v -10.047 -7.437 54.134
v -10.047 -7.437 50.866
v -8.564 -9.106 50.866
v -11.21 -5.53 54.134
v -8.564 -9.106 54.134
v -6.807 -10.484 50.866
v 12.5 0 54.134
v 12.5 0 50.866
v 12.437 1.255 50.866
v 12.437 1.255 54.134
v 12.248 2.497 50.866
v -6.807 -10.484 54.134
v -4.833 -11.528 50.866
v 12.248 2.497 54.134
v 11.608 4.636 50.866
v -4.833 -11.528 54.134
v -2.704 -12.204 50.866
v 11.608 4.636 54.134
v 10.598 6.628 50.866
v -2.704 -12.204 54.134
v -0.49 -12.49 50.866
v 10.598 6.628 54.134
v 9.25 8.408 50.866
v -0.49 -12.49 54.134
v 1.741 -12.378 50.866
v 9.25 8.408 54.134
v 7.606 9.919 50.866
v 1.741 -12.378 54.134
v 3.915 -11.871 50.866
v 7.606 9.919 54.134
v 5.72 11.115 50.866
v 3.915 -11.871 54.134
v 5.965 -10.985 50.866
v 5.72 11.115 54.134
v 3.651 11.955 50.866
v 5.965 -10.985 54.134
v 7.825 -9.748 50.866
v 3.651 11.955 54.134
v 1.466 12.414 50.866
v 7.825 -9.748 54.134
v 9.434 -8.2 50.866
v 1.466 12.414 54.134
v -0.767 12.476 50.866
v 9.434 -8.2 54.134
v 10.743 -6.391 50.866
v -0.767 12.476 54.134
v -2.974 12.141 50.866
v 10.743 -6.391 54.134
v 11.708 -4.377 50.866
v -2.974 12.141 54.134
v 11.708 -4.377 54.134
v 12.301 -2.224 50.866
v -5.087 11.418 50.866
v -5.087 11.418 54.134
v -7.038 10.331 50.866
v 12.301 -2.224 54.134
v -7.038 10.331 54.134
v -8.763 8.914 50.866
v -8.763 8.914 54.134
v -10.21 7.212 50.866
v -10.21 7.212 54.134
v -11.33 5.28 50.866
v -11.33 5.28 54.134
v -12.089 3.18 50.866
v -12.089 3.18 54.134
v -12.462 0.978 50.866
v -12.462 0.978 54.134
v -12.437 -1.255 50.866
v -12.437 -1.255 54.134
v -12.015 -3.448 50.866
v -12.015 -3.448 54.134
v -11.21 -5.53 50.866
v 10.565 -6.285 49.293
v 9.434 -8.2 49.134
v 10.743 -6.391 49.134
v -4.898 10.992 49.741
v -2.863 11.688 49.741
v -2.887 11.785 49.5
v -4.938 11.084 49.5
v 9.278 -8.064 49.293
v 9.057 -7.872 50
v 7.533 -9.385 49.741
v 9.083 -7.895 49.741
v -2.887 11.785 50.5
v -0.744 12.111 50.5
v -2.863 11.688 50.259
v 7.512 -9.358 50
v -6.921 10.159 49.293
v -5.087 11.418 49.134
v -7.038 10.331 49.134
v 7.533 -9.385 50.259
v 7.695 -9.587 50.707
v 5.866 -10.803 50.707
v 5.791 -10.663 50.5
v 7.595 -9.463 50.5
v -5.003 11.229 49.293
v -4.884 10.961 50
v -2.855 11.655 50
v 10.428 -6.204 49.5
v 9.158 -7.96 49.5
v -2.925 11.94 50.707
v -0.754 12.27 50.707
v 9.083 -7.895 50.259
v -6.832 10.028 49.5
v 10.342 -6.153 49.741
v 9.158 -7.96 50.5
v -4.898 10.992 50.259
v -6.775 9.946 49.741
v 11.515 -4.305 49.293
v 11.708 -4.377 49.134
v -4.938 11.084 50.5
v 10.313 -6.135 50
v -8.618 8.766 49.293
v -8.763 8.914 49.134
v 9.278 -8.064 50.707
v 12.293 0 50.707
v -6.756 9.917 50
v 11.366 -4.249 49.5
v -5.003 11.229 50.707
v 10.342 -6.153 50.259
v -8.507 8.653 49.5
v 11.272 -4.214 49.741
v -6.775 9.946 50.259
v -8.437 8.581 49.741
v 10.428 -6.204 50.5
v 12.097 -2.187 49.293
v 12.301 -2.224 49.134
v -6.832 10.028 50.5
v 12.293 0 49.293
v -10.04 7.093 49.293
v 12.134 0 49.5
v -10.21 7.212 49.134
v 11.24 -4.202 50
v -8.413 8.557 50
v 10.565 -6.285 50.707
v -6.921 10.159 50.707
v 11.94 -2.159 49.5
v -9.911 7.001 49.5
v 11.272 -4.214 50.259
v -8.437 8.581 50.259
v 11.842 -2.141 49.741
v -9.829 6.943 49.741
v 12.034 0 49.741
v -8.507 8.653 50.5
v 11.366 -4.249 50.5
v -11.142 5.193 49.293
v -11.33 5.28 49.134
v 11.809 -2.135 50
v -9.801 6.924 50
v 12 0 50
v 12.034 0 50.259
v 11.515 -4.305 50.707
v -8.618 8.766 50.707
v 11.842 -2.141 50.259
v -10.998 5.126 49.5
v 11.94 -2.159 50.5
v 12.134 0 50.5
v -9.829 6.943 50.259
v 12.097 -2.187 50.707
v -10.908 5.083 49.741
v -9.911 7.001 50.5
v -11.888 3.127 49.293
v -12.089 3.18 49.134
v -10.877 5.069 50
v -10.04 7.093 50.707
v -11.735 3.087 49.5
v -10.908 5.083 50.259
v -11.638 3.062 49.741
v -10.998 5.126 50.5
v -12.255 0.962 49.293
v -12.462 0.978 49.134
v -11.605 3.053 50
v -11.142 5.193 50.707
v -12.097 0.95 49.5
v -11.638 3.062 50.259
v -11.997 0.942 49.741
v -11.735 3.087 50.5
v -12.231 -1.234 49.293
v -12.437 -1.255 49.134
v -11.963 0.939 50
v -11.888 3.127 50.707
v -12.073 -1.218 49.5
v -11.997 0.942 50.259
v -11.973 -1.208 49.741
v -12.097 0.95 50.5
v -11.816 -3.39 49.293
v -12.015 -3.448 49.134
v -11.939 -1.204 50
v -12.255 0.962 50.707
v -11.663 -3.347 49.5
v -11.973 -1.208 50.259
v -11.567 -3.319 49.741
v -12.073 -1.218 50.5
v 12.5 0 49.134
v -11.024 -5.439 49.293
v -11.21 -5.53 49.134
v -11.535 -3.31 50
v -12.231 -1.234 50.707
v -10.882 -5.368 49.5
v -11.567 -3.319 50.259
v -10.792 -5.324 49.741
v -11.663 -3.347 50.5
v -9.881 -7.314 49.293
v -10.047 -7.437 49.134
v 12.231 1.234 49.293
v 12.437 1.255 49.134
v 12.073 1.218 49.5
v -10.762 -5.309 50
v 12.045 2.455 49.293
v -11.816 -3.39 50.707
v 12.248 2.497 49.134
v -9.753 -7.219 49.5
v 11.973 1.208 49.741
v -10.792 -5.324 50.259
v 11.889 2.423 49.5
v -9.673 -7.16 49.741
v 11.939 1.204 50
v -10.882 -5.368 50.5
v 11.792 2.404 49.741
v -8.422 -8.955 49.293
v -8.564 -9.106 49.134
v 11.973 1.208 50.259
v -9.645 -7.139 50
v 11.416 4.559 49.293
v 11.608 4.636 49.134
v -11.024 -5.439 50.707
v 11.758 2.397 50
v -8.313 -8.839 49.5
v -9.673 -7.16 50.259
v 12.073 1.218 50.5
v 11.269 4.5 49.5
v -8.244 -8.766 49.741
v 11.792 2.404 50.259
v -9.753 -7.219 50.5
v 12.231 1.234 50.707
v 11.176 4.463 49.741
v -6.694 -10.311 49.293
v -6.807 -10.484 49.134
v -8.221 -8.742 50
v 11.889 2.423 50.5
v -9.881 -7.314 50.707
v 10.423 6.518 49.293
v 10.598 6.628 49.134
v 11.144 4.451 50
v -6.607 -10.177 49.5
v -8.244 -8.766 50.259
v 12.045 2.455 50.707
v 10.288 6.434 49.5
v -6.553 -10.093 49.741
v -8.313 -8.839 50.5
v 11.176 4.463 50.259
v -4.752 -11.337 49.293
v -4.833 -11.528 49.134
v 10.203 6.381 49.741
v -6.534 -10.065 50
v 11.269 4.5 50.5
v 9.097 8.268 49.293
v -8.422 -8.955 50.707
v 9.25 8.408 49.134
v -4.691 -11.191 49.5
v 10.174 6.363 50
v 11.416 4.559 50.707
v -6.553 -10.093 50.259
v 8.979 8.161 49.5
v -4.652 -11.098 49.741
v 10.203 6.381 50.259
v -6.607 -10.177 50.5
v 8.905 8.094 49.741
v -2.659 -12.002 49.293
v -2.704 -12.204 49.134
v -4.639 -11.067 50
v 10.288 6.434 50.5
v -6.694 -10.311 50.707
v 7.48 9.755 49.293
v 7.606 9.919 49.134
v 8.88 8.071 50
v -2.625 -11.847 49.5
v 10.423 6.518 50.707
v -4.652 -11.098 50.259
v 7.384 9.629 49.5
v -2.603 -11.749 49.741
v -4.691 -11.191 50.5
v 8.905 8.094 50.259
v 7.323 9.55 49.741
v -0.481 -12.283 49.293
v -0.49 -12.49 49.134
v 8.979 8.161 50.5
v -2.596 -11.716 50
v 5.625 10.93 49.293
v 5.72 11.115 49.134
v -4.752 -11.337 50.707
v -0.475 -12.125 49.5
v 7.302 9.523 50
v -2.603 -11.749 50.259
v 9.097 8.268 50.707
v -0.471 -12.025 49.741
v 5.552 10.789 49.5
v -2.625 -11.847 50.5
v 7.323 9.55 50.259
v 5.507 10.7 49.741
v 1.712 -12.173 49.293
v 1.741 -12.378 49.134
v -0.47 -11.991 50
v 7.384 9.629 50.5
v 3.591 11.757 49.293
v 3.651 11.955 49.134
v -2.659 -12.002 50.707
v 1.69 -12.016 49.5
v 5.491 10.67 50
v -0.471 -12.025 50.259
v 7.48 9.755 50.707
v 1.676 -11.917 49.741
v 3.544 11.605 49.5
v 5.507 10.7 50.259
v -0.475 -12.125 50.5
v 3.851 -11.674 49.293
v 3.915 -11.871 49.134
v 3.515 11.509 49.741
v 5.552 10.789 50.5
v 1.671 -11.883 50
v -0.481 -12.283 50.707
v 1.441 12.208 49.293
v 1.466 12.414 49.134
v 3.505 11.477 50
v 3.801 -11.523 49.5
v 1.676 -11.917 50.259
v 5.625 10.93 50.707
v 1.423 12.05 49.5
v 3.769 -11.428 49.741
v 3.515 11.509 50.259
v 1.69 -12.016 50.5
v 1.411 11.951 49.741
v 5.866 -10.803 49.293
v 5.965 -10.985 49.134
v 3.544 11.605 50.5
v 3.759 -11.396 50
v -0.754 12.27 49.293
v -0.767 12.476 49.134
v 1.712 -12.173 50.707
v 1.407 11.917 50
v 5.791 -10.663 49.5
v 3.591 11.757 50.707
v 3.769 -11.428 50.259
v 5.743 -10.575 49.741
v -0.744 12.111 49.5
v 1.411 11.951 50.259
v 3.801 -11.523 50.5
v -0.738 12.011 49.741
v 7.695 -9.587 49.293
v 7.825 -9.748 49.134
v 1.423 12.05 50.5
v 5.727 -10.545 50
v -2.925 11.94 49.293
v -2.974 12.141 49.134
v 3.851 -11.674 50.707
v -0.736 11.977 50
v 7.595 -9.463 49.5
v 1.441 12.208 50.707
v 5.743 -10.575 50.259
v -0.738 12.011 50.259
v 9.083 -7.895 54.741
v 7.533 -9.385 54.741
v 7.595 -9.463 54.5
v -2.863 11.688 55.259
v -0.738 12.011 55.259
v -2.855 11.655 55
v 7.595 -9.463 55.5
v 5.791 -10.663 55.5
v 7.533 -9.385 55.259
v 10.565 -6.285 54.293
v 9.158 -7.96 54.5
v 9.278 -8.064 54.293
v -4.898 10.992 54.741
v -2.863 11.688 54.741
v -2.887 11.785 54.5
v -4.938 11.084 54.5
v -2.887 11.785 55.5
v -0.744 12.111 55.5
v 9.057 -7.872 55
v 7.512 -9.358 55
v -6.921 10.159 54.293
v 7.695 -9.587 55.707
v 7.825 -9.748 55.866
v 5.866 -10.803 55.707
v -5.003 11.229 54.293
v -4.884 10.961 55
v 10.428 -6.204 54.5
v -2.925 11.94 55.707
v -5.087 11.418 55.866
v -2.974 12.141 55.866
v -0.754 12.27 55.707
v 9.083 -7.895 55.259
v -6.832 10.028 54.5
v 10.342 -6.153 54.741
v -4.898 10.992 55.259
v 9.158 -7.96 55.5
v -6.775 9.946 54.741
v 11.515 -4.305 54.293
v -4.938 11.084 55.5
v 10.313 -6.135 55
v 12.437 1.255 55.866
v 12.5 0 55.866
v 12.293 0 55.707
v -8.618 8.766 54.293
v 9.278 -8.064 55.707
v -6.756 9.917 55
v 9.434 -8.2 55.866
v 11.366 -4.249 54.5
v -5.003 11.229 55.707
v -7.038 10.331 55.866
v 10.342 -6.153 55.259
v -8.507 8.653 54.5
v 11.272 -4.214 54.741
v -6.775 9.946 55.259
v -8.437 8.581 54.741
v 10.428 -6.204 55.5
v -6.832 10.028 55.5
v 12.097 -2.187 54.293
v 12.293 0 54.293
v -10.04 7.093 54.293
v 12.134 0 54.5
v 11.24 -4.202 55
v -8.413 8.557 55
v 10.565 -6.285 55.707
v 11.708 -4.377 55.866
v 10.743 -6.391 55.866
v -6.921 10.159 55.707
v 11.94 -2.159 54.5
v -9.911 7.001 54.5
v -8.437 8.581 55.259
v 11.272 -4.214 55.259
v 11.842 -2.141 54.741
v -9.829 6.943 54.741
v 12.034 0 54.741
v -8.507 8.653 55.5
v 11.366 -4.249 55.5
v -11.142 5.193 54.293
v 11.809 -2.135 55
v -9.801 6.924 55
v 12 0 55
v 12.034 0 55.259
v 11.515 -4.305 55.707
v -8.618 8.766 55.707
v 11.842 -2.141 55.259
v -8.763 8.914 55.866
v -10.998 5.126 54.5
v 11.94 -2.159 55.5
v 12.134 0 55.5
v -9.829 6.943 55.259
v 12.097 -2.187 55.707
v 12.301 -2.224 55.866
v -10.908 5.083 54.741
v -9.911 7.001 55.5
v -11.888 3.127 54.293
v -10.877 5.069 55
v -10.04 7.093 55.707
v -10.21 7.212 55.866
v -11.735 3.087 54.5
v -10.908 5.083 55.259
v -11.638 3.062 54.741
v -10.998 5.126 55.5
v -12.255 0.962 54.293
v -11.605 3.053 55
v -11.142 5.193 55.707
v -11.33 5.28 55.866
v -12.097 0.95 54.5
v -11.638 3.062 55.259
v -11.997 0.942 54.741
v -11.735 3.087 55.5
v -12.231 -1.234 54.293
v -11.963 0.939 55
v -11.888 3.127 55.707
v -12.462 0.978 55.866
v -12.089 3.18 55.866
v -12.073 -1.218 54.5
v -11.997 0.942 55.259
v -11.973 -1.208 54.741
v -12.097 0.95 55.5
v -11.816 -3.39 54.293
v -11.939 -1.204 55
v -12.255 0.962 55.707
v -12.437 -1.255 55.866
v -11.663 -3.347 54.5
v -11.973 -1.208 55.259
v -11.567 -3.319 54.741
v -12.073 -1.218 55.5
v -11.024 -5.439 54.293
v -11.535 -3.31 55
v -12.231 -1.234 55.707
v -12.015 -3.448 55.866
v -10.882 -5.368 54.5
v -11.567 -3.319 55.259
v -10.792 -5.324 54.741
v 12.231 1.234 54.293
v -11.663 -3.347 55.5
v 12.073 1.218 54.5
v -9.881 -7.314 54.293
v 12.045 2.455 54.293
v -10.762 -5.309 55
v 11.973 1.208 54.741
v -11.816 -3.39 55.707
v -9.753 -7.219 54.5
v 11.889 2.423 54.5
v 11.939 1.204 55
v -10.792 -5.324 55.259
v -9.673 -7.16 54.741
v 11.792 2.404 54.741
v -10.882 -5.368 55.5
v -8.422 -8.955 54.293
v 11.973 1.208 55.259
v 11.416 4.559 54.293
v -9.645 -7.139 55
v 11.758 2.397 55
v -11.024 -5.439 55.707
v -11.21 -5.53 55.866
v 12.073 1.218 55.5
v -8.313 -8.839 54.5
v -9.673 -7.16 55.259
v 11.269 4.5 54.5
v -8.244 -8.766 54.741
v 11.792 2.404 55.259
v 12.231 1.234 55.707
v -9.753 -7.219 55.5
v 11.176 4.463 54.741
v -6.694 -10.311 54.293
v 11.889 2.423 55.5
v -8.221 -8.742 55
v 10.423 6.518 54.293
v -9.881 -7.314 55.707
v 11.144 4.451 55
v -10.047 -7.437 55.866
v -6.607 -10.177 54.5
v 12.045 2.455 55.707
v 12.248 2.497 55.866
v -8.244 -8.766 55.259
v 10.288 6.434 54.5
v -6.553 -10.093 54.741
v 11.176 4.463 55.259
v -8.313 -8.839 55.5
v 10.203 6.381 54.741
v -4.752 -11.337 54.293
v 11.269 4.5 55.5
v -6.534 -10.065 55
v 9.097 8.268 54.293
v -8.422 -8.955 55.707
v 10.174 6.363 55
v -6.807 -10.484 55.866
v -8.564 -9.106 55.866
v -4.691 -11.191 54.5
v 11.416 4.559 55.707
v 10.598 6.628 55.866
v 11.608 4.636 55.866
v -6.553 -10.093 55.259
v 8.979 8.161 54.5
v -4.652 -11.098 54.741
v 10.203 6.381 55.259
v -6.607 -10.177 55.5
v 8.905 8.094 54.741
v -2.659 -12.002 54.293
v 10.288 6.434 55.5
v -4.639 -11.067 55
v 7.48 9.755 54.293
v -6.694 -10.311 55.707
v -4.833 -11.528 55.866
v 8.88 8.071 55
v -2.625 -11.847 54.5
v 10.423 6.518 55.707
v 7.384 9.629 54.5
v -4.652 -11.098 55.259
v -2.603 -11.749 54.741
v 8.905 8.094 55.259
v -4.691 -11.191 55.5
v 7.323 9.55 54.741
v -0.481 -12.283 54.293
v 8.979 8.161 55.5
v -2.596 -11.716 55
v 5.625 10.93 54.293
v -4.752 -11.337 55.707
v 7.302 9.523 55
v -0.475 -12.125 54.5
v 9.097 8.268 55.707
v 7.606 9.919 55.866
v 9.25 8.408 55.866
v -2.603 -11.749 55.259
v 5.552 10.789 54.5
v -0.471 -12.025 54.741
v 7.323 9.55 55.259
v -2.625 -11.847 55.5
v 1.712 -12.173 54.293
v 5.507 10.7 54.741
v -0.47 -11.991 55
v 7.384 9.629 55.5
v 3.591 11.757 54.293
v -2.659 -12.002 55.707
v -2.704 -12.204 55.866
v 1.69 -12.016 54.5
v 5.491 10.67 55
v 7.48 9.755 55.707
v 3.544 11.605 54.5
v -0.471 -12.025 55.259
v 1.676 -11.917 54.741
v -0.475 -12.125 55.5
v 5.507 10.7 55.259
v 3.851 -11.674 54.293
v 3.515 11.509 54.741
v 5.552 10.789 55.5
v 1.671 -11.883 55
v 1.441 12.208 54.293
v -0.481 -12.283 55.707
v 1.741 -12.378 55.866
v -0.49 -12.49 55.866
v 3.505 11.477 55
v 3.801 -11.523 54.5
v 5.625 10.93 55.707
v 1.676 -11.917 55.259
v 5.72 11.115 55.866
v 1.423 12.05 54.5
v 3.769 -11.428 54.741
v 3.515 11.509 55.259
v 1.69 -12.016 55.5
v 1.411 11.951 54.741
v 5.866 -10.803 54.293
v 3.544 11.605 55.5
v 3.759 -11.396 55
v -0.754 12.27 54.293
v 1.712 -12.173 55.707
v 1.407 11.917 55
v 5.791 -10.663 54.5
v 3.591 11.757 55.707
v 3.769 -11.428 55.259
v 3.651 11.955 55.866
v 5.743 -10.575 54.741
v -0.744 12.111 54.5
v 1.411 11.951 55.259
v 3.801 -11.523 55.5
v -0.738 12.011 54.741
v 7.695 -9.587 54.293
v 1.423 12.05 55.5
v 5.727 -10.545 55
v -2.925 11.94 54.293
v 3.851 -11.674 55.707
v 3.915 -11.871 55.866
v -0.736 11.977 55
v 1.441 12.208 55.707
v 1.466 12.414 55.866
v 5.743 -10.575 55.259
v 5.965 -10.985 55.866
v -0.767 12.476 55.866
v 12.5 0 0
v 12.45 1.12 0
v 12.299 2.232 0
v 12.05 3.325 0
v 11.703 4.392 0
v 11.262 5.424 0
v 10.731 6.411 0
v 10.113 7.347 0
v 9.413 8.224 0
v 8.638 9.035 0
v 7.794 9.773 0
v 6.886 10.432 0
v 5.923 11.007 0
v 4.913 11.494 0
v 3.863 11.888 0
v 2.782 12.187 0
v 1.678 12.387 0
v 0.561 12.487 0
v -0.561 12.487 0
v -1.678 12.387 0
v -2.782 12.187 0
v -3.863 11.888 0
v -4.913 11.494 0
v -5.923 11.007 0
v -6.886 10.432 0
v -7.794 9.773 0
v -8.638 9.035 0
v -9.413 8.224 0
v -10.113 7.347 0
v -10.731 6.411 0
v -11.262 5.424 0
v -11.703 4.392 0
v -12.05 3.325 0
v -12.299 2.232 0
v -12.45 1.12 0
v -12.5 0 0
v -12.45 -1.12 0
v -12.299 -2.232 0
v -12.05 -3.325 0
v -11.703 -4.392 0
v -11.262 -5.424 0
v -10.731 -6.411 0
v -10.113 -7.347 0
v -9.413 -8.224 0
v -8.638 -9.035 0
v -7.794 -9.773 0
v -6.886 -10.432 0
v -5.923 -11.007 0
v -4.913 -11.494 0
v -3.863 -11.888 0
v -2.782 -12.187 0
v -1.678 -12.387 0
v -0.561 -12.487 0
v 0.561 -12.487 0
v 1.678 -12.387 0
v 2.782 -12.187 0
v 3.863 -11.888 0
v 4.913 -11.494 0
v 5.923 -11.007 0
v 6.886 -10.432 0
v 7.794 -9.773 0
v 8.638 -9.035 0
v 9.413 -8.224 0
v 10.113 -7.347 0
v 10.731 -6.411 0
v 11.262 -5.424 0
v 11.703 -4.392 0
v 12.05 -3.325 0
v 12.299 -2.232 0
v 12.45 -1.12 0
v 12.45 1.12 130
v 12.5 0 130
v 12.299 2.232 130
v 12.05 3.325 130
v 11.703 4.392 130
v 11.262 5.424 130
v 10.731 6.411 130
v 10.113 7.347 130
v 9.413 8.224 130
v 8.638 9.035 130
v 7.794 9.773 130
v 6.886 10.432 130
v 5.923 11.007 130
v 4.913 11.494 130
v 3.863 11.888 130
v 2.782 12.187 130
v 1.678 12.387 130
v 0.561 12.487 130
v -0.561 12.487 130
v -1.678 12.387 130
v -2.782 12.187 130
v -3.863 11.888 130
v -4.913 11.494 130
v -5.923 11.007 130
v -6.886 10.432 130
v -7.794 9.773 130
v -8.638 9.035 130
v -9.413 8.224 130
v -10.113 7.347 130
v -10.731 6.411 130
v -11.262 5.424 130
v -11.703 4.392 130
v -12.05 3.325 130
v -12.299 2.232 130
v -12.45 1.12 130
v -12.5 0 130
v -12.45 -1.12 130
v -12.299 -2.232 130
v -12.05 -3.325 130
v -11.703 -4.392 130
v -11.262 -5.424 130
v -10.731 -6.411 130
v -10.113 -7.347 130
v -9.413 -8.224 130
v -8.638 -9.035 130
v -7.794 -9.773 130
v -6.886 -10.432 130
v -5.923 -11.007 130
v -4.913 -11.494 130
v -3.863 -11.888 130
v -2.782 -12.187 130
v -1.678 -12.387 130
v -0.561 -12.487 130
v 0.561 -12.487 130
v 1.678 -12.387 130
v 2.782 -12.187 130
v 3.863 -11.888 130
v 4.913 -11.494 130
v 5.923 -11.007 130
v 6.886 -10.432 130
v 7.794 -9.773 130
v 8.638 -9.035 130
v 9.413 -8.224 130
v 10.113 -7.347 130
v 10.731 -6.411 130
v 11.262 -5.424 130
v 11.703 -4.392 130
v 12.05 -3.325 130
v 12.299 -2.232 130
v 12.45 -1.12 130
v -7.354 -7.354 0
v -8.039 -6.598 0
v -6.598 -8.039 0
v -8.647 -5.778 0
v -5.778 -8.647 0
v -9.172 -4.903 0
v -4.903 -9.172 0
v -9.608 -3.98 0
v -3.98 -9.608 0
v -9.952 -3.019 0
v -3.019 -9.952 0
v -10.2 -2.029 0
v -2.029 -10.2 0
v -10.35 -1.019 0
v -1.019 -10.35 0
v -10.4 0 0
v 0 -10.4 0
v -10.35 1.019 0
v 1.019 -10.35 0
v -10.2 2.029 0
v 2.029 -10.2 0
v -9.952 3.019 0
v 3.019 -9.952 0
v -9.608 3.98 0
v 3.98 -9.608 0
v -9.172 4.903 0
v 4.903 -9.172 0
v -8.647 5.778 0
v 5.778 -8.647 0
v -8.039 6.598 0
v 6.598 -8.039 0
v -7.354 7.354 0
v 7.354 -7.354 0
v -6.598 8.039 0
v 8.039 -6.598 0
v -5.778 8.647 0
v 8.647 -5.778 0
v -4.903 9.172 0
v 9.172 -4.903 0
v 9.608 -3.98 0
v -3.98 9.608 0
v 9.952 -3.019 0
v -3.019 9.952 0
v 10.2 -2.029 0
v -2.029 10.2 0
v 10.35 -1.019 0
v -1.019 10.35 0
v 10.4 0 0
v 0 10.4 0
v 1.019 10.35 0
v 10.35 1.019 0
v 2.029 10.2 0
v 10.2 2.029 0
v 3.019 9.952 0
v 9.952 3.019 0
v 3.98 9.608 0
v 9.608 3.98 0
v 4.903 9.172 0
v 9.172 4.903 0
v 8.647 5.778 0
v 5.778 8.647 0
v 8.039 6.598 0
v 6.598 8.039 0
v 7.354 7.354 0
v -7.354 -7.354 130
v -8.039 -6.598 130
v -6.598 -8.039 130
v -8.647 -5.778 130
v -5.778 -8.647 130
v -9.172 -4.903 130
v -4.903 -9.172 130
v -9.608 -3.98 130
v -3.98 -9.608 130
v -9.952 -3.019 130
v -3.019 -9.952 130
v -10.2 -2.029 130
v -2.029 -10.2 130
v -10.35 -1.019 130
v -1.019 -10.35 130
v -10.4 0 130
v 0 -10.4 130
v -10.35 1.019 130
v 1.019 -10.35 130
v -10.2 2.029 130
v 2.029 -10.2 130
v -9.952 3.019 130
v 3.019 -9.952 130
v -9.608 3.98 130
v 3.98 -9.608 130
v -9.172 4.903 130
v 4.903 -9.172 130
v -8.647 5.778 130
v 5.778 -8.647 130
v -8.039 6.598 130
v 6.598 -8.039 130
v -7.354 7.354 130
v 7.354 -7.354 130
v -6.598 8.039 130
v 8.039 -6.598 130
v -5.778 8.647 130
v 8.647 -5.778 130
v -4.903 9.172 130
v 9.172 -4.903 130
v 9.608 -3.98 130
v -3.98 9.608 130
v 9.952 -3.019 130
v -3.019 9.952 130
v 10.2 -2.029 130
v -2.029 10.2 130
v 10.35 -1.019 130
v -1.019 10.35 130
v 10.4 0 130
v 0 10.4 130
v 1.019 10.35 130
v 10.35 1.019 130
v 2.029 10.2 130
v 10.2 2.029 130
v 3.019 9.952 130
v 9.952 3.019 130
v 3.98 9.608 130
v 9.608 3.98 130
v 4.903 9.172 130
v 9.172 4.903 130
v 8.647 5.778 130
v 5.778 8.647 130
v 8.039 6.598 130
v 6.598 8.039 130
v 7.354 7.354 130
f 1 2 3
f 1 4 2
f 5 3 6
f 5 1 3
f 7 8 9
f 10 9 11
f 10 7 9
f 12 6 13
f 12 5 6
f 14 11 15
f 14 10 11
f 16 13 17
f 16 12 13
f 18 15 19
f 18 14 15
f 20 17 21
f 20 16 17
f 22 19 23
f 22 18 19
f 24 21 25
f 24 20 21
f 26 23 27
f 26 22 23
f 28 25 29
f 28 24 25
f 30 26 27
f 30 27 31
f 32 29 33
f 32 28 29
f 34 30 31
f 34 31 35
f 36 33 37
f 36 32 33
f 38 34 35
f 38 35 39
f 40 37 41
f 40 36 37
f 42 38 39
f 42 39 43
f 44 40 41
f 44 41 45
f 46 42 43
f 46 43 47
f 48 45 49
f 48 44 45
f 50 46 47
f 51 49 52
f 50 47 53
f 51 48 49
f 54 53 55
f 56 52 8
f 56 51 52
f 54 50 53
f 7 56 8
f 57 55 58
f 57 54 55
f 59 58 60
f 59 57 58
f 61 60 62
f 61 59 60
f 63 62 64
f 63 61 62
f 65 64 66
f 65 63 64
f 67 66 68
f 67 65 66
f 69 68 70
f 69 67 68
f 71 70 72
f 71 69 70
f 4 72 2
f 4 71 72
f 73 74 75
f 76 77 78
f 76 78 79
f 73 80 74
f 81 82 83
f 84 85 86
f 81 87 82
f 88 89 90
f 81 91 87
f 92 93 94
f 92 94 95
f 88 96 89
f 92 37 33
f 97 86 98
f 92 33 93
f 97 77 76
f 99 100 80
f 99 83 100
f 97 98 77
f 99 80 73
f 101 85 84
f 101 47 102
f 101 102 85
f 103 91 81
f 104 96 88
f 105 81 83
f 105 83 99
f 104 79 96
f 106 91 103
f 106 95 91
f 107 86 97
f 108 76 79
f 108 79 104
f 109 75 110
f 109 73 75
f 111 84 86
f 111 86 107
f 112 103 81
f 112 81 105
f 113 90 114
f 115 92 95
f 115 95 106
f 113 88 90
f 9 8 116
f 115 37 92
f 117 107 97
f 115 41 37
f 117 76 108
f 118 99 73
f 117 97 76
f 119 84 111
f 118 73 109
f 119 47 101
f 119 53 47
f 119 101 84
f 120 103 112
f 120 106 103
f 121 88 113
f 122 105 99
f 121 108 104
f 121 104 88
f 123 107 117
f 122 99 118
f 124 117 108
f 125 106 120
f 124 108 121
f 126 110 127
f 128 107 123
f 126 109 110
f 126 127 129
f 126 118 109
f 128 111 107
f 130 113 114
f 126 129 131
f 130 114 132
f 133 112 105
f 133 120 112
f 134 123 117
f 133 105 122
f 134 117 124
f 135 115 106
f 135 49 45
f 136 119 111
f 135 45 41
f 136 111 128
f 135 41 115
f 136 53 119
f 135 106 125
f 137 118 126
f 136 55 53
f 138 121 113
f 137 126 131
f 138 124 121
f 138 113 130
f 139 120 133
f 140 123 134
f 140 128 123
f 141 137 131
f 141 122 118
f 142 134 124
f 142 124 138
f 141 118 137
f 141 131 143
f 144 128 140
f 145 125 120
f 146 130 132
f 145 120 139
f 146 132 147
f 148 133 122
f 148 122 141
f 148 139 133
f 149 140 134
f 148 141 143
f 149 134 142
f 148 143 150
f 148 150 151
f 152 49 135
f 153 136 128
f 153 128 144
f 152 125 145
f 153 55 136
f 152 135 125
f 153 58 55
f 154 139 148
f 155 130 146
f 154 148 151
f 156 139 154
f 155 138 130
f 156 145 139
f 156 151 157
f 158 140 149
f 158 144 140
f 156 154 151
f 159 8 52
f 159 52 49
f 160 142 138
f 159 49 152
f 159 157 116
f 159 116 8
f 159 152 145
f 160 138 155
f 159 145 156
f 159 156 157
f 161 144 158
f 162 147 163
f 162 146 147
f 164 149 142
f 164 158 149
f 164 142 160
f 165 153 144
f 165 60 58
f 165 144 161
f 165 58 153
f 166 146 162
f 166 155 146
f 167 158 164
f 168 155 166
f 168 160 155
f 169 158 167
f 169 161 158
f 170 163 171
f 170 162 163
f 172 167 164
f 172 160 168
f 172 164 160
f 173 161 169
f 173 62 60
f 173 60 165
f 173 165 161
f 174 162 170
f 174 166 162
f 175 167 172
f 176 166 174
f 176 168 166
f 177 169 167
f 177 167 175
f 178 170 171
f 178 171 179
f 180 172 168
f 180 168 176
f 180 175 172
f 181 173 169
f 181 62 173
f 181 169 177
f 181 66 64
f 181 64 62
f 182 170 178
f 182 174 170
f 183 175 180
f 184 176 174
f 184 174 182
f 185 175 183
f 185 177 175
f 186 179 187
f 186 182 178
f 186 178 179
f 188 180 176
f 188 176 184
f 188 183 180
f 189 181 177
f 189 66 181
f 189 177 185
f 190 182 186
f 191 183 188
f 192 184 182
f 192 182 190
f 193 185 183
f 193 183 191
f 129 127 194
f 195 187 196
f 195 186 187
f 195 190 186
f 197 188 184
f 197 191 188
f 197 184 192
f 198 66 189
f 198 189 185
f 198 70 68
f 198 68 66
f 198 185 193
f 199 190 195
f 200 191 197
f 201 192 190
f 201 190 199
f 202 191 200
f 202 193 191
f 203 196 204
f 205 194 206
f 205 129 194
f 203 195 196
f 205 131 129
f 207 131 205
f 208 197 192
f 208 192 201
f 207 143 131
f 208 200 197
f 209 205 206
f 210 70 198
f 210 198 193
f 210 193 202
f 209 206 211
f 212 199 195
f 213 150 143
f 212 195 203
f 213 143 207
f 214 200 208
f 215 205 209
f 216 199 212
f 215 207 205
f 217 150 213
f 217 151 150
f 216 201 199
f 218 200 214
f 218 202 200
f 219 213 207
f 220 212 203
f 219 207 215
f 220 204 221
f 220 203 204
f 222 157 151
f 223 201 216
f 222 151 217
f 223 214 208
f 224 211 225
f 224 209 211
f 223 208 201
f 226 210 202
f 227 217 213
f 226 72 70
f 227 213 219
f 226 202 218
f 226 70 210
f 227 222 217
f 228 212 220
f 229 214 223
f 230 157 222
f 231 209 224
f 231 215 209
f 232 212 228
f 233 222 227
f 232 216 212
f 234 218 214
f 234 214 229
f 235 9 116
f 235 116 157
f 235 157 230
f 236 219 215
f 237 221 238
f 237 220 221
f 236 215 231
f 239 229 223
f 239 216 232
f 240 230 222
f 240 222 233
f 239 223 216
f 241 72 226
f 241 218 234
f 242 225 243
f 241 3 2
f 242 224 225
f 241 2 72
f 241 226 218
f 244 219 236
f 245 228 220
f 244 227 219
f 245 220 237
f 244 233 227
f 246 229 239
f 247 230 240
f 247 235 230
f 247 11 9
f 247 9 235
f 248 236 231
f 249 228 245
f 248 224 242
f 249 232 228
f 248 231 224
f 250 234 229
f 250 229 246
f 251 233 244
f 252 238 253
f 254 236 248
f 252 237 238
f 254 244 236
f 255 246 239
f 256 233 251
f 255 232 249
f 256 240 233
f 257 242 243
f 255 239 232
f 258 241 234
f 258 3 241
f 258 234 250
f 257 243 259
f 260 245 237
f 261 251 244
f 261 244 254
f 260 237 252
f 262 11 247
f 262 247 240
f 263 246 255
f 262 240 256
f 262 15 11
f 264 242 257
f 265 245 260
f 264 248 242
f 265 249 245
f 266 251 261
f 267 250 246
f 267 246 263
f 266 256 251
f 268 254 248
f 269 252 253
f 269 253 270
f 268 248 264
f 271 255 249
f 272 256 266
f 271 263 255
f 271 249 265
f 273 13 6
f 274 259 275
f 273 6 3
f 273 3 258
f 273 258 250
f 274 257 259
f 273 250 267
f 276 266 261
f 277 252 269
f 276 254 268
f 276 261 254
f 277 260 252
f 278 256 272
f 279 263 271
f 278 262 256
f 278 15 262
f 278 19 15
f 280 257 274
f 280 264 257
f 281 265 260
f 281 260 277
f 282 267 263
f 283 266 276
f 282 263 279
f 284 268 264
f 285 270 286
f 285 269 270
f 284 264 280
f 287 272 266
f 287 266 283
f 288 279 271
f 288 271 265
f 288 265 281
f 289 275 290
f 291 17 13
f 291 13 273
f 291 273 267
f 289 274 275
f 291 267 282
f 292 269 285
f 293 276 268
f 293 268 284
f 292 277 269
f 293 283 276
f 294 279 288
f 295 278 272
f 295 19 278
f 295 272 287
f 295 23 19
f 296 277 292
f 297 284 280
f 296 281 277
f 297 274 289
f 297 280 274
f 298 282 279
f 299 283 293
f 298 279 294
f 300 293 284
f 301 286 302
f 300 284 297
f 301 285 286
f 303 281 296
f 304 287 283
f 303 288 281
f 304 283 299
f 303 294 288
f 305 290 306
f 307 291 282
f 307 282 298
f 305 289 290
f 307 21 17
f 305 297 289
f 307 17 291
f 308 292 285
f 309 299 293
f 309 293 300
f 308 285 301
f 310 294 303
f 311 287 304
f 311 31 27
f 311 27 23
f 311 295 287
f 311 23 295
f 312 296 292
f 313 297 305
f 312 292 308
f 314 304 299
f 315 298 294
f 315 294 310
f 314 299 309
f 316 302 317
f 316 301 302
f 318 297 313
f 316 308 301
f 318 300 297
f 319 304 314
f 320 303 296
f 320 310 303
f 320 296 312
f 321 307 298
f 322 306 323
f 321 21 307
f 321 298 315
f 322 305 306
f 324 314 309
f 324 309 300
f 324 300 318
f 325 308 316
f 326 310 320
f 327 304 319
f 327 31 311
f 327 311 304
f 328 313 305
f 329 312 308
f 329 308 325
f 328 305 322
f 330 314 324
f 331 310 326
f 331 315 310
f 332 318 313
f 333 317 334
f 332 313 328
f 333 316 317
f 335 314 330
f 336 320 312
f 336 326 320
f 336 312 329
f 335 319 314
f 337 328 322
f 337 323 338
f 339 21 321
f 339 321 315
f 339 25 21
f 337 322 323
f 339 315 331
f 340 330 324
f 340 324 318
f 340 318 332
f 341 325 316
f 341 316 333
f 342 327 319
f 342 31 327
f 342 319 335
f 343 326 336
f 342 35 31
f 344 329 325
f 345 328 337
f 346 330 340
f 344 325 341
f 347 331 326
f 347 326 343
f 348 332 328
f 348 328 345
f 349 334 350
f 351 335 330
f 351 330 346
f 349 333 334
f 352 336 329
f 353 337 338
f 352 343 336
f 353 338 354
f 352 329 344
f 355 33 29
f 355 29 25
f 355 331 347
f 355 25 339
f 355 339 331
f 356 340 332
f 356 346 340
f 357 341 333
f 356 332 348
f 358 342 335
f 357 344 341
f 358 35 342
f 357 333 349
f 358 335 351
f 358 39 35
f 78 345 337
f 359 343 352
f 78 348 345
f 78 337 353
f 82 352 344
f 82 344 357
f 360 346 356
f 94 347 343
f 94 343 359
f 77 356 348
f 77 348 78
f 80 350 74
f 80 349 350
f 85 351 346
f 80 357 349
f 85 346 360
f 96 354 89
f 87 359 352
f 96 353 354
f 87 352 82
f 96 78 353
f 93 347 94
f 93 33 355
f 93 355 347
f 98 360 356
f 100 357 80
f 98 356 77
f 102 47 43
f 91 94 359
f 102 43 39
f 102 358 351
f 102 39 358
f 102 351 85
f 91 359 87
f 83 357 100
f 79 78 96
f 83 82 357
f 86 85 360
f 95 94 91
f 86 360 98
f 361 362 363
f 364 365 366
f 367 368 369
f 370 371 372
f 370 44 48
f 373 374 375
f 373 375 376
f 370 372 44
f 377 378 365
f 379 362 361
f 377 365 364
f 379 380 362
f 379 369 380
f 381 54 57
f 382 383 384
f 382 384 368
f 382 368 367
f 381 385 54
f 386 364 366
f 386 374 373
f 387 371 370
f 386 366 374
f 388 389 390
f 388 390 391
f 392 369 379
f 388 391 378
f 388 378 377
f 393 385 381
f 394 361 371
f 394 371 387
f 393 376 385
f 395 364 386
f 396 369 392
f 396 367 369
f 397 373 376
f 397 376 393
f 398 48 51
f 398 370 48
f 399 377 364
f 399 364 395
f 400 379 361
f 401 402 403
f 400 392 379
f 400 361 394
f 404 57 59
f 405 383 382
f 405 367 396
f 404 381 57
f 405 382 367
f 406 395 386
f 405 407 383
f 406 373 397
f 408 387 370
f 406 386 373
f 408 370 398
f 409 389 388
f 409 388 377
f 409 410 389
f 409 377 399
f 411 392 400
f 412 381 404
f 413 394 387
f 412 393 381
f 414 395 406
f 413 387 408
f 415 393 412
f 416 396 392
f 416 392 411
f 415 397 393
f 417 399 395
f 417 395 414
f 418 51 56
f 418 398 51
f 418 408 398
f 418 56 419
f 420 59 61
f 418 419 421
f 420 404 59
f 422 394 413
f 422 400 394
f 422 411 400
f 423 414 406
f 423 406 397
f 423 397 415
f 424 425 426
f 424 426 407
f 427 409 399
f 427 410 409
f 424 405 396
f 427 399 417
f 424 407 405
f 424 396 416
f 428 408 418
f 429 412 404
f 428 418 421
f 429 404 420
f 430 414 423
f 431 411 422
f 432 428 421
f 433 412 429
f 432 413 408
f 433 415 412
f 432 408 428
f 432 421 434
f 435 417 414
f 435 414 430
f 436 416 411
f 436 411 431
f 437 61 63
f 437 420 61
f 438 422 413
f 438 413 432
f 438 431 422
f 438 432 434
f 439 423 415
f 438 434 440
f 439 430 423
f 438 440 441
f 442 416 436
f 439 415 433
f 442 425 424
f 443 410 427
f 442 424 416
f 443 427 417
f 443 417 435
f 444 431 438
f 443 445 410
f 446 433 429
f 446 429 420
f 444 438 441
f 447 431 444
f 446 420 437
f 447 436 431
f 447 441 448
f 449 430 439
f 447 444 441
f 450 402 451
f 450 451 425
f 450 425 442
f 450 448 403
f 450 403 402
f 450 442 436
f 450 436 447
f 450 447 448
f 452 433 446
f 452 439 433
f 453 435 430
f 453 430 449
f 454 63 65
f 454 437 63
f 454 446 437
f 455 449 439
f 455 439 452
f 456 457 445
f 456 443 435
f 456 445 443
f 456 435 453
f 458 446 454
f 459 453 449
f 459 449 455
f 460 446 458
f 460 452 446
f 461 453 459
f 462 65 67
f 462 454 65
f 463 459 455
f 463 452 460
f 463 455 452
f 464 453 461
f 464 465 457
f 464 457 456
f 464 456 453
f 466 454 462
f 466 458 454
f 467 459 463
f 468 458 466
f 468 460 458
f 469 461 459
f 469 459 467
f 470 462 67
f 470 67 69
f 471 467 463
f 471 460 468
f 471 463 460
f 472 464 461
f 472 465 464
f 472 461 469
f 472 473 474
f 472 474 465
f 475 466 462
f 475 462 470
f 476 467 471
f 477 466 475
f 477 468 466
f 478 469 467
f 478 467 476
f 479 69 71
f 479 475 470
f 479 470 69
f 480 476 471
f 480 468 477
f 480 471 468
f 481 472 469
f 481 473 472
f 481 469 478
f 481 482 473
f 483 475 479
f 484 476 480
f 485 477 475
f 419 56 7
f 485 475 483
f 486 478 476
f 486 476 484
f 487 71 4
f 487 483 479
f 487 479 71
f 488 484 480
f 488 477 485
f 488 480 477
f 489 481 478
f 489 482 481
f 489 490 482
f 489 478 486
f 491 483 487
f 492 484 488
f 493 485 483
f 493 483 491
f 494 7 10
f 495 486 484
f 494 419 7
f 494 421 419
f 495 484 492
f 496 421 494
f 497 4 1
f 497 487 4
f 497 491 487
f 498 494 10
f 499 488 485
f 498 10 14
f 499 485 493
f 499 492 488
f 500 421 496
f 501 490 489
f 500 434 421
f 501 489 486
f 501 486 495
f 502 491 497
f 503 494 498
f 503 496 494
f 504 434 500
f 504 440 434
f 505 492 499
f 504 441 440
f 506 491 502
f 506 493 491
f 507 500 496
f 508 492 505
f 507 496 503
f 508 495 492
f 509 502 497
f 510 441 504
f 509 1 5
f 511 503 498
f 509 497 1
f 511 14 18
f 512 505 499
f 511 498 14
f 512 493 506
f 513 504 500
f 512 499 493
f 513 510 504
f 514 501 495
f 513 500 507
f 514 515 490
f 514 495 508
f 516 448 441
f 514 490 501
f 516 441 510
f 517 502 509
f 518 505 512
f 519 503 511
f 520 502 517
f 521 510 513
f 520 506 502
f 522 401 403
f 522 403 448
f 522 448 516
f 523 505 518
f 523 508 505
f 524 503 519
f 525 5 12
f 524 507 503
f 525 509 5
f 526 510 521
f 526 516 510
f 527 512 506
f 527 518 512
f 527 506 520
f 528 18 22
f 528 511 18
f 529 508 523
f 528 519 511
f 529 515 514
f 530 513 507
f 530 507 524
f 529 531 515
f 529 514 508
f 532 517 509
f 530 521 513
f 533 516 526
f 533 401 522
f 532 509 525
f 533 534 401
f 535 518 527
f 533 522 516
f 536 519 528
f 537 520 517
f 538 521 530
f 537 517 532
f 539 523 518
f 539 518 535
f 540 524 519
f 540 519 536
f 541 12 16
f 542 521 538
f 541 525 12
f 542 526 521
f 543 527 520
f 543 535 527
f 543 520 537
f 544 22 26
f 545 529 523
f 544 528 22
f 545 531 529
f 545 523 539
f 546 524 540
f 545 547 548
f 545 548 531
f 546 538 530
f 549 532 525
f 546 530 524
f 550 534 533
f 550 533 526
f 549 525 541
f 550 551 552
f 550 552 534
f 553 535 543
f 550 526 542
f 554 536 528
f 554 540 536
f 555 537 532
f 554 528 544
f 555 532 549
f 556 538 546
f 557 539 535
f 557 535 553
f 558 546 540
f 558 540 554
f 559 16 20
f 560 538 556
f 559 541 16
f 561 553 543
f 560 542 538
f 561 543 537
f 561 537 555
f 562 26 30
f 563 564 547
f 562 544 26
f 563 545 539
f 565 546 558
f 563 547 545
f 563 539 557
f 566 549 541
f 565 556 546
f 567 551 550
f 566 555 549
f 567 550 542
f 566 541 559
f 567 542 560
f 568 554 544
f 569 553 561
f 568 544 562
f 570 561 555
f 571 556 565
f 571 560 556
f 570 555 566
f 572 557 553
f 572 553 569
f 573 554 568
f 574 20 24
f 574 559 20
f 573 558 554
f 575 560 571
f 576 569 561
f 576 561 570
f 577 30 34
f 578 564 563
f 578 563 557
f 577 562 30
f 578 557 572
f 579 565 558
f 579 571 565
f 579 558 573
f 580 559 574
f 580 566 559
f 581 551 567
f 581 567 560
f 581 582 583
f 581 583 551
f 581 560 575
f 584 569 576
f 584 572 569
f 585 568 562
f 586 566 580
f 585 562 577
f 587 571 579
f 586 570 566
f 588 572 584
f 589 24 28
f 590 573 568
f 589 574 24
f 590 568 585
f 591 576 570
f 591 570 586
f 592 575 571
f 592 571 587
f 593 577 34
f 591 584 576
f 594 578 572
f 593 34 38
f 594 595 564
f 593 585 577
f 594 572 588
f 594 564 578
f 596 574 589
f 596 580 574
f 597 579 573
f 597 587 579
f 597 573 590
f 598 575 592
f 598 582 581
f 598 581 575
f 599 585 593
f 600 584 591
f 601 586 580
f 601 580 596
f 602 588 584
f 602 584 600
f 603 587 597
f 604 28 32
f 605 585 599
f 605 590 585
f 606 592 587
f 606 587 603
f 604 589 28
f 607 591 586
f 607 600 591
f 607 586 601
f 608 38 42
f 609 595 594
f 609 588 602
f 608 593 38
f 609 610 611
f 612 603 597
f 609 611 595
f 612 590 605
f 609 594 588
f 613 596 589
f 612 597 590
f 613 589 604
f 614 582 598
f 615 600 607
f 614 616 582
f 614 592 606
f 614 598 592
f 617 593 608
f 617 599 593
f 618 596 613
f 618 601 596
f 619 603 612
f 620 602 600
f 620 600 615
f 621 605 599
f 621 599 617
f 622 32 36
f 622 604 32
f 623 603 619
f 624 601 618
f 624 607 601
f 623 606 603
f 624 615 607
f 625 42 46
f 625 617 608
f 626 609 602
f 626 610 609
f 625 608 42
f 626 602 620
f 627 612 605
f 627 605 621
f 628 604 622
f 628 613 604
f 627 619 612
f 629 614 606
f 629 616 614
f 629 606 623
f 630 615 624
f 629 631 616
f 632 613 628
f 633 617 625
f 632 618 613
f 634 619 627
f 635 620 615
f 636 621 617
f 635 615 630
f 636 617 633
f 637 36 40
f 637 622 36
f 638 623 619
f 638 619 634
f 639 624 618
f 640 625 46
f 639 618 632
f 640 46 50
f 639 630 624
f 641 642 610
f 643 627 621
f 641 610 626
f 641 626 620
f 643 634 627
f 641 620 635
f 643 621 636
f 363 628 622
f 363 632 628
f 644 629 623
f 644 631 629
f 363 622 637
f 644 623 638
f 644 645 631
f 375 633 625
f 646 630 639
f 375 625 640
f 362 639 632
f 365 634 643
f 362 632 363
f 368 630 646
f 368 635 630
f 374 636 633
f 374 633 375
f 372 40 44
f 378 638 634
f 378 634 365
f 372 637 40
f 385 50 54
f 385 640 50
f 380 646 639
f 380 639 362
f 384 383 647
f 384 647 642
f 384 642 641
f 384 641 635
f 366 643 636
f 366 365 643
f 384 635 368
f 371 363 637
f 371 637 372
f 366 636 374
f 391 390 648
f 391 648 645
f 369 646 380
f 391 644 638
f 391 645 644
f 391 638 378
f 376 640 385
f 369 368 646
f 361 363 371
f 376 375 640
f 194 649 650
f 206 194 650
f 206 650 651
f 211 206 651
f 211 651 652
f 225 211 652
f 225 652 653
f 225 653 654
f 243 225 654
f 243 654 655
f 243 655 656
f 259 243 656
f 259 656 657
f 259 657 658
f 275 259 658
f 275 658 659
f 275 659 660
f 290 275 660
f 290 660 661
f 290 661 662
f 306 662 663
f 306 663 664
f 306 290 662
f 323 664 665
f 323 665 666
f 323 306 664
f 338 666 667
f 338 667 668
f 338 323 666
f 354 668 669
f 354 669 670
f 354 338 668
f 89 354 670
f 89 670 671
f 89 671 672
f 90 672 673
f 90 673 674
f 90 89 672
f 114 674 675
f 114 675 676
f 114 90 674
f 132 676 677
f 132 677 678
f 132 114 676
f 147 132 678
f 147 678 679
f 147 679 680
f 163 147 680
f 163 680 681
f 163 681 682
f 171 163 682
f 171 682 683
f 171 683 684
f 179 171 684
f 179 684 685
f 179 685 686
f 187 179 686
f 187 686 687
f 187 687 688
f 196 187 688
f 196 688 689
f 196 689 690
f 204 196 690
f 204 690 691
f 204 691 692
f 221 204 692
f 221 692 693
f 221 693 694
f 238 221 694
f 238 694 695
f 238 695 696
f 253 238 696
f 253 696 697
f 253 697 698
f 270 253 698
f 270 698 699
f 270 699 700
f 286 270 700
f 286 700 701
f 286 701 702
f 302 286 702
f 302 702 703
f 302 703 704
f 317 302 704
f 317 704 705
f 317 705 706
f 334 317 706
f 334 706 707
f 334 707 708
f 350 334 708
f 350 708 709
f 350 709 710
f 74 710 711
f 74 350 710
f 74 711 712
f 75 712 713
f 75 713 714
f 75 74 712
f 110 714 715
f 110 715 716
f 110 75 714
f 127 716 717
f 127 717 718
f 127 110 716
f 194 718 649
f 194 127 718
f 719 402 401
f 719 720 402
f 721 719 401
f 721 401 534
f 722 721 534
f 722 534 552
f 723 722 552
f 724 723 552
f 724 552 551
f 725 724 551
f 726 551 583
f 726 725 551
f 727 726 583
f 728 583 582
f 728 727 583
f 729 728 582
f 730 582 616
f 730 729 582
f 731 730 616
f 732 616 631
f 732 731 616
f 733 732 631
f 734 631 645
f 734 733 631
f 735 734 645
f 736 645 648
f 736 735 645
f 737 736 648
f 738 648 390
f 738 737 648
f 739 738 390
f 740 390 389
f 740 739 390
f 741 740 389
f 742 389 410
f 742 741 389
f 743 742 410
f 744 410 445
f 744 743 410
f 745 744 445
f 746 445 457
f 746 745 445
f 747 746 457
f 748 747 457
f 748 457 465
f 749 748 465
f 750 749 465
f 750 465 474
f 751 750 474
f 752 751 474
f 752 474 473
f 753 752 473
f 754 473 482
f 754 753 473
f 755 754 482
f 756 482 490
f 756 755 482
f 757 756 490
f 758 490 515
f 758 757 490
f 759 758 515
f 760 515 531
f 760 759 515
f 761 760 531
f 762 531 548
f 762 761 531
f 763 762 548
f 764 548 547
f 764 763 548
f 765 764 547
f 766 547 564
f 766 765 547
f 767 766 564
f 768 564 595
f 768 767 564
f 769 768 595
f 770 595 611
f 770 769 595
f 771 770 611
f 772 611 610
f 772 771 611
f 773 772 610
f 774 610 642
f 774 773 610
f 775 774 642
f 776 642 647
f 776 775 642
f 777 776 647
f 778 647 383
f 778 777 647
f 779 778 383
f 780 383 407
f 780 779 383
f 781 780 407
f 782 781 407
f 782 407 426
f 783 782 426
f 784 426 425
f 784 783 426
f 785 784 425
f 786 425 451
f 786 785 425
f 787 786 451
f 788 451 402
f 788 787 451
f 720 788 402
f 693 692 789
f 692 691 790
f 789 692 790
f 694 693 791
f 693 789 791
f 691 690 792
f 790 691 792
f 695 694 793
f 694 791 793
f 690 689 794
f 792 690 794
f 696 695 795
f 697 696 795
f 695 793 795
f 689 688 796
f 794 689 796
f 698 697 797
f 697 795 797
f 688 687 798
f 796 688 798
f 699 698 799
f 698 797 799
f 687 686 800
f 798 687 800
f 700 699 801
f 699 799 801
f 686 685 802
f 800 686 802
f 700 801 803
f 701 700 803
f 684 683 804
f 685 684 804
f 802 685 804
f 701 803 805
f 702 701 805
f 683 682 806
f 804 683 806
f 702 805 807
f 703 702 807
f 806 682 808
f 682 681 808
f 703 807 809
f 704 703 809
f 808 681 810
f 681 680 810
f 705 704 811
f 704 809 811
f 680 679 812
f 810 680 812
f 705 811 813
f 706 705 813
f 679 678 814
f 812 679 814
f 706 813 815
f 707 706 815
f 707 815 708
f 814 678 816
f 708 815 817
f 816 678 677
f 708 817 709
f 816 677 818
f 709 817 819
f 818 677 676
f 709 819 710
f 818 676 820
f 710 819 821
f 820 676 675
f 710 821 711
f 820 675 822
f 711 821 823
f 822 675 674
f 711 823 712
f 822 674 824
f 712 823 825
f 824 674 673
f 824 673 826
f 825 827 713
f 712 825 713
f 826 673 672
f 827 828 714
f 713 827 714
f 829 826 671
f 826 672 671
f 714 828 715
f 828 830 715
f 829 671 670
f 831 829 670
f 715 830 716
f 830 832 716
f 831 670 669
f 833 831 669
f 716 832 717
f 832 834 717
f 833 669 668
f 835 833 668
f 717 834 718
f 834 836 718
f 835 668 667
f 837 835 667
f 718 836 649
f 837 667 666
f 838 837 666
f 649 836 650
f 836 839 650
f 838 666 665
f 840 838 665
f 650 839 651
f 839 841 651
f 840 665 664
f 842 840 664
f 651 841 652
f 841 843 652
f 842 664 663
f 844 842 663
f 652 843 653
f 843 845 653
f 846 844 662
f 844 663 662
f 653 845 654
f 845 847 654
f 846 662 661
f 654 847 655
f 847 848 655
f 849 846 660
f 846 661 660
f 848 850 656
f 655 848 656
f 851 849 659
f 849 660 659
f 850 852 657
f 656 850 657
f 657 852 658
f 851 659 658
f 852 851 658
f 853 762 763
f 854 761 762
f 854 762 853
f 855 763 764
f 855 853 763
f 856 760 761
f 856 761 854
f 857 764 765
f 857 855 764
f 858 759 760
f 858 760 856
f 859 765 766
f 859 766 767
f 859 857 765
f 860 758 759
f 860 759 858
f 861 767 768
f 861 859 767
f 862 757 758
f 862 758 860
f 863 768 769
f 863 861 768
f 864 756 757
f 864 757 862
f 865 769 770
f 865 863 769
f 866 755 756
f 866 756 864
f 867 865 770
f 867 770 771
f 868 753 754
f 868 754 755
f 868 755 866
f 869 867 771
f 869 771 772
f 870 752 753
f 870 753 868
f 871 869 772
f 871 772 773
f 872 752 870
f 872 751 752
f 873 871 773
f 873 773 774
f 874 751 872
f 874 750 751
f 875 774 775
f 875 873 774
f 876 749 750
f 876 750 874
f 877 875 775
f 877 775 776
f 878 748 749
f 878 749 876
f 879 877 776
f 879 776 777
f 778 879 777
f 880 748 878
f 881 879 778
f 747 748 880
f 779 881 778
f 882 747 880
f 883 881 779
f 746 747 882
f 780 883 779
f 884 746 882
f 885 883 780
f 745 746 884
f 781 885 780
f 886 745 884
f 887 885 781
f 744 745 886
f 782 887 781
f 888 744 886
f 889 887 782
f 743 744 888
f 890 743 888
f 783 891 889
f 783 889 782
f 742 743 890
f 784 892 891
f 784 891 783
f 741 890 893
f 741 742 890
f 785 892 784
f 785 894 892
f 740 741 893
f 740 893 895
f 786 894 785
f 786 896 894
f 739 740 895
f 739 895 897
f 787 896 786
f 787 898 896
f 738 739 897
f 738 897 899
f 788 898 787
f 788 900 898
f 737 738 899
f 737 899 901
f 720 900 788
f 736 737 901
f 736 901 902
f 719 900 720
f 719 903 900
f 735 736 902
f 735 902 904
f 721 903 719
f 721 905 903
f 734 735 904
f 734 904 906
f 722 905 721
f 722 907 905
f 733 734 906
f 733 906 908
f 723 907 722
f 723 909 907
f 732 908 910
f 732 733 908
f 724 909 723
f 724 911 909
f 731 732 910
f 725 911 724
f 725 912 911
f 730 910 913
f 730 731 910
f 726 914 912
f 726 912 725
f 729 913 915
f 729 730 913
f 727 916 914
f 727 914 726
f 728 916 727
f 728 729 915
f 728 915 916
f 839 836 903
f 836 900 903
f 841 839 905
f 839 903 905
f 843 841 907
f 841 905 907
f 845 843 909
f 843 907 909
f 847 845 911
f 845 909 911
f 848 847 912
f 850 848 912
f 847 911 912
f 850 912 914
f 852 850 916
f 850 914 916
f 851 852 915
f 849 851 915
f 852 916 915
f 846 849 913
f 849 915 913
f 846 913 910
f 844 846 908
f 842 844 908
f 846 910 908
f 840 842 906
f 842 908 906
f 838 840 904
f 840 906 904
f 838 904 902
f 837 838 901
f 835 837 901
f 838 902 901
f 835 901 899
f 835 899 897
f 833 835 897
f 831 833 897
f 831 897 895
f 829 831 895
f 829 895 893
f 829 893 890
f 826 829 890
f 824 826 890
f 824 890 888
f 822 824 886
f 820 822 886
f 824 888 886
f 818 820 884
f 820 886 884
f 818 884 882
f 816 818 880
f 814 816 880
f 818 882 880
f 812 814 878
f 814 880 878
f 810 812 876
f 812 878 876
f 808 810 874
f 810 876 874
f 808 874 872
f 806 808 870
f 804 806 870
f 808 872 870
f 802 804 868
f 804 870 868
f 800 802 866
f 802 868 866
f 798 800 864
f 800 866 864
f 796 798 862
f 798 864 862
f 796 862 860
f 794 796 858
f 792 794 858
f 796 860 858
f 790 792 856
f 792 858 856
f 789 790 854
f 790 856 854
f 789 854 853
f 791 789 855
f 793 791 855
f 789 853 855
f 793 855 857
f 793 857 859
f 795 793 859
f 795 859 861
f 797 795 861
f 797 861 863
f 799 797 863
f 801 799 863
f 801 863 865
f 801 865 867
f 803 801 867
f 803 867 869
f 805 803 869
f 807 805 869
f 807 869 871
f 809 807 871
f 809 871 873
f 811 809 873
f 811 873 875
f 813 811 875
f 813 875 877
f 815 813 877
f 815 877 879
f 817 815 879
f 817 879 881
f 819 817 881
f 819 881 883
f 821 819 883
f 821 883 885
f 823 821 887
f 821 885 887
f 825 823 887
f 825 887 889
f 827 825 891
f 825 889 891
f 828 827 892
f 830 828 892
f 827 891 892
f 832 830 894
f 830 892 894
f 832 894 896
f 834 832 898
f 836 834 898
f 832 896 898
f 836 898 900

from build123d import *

# Parameters (mm, degrees)
TORUS_R           = 1
TORUS001_R        = 1
CYLINDER001_R     = 10.4
CYLINDER001_DEPTH = 130
CYLINDER_R        = 12.5
CYLINDER_DEPTH    = 130


with BuildPart() as torus:
    # Torus → Torus (revolve)
    with BuildSketch(Plane(origin=(0, 0, 55), x_dir=(1, 0, 0), z_dir=(0, -1, 0))):
        with Locations((13, 0)):
            Circle(TORUS_R)
    revolve(axis=Axis((0, 0, 55), (0, 0, 1)))


with BuildPart() as torus001:
    # Torus001 → Torus001 (revolve)
    with BuildSketch(Plane(origin=(0, 0, 50), x_dir=(1, 0, 0), z_dir=(0, -1, 0))):
        with Locations((13, 0)):
            Circle(TORUS001_R)
    revolve(axis=Axis((0, 0, 50), (0, 0, 1)))


with BuildPart() as cylinder001:
    # Cylinder001 → Cylinder001 (new body)
    with BuildSketch(Plane.XY):
        Circle(CYLINDER001_R)
    extrude(amount=CYLINDER001_DEPTH)


with BuildPart() as cut002:
    # Cylinder → Cylinder (new body)
    with BuildSketch(Plane.XY):
        Circle(CYLINDER_R)
    extrude(amount=CYLINDER_DEPTH)

    # Cut: cut Cylinder001
    add(cylinder001.part, mode=Mode.SUBTRACT)

    # Cut001: cut Torus001
    add(torus001.part, mode=Mode.SUBTRACT)

    # Cut002: cut Torus
    add(torus.part, mode=Mode.SUBTRACT)


solid = cut002.part
